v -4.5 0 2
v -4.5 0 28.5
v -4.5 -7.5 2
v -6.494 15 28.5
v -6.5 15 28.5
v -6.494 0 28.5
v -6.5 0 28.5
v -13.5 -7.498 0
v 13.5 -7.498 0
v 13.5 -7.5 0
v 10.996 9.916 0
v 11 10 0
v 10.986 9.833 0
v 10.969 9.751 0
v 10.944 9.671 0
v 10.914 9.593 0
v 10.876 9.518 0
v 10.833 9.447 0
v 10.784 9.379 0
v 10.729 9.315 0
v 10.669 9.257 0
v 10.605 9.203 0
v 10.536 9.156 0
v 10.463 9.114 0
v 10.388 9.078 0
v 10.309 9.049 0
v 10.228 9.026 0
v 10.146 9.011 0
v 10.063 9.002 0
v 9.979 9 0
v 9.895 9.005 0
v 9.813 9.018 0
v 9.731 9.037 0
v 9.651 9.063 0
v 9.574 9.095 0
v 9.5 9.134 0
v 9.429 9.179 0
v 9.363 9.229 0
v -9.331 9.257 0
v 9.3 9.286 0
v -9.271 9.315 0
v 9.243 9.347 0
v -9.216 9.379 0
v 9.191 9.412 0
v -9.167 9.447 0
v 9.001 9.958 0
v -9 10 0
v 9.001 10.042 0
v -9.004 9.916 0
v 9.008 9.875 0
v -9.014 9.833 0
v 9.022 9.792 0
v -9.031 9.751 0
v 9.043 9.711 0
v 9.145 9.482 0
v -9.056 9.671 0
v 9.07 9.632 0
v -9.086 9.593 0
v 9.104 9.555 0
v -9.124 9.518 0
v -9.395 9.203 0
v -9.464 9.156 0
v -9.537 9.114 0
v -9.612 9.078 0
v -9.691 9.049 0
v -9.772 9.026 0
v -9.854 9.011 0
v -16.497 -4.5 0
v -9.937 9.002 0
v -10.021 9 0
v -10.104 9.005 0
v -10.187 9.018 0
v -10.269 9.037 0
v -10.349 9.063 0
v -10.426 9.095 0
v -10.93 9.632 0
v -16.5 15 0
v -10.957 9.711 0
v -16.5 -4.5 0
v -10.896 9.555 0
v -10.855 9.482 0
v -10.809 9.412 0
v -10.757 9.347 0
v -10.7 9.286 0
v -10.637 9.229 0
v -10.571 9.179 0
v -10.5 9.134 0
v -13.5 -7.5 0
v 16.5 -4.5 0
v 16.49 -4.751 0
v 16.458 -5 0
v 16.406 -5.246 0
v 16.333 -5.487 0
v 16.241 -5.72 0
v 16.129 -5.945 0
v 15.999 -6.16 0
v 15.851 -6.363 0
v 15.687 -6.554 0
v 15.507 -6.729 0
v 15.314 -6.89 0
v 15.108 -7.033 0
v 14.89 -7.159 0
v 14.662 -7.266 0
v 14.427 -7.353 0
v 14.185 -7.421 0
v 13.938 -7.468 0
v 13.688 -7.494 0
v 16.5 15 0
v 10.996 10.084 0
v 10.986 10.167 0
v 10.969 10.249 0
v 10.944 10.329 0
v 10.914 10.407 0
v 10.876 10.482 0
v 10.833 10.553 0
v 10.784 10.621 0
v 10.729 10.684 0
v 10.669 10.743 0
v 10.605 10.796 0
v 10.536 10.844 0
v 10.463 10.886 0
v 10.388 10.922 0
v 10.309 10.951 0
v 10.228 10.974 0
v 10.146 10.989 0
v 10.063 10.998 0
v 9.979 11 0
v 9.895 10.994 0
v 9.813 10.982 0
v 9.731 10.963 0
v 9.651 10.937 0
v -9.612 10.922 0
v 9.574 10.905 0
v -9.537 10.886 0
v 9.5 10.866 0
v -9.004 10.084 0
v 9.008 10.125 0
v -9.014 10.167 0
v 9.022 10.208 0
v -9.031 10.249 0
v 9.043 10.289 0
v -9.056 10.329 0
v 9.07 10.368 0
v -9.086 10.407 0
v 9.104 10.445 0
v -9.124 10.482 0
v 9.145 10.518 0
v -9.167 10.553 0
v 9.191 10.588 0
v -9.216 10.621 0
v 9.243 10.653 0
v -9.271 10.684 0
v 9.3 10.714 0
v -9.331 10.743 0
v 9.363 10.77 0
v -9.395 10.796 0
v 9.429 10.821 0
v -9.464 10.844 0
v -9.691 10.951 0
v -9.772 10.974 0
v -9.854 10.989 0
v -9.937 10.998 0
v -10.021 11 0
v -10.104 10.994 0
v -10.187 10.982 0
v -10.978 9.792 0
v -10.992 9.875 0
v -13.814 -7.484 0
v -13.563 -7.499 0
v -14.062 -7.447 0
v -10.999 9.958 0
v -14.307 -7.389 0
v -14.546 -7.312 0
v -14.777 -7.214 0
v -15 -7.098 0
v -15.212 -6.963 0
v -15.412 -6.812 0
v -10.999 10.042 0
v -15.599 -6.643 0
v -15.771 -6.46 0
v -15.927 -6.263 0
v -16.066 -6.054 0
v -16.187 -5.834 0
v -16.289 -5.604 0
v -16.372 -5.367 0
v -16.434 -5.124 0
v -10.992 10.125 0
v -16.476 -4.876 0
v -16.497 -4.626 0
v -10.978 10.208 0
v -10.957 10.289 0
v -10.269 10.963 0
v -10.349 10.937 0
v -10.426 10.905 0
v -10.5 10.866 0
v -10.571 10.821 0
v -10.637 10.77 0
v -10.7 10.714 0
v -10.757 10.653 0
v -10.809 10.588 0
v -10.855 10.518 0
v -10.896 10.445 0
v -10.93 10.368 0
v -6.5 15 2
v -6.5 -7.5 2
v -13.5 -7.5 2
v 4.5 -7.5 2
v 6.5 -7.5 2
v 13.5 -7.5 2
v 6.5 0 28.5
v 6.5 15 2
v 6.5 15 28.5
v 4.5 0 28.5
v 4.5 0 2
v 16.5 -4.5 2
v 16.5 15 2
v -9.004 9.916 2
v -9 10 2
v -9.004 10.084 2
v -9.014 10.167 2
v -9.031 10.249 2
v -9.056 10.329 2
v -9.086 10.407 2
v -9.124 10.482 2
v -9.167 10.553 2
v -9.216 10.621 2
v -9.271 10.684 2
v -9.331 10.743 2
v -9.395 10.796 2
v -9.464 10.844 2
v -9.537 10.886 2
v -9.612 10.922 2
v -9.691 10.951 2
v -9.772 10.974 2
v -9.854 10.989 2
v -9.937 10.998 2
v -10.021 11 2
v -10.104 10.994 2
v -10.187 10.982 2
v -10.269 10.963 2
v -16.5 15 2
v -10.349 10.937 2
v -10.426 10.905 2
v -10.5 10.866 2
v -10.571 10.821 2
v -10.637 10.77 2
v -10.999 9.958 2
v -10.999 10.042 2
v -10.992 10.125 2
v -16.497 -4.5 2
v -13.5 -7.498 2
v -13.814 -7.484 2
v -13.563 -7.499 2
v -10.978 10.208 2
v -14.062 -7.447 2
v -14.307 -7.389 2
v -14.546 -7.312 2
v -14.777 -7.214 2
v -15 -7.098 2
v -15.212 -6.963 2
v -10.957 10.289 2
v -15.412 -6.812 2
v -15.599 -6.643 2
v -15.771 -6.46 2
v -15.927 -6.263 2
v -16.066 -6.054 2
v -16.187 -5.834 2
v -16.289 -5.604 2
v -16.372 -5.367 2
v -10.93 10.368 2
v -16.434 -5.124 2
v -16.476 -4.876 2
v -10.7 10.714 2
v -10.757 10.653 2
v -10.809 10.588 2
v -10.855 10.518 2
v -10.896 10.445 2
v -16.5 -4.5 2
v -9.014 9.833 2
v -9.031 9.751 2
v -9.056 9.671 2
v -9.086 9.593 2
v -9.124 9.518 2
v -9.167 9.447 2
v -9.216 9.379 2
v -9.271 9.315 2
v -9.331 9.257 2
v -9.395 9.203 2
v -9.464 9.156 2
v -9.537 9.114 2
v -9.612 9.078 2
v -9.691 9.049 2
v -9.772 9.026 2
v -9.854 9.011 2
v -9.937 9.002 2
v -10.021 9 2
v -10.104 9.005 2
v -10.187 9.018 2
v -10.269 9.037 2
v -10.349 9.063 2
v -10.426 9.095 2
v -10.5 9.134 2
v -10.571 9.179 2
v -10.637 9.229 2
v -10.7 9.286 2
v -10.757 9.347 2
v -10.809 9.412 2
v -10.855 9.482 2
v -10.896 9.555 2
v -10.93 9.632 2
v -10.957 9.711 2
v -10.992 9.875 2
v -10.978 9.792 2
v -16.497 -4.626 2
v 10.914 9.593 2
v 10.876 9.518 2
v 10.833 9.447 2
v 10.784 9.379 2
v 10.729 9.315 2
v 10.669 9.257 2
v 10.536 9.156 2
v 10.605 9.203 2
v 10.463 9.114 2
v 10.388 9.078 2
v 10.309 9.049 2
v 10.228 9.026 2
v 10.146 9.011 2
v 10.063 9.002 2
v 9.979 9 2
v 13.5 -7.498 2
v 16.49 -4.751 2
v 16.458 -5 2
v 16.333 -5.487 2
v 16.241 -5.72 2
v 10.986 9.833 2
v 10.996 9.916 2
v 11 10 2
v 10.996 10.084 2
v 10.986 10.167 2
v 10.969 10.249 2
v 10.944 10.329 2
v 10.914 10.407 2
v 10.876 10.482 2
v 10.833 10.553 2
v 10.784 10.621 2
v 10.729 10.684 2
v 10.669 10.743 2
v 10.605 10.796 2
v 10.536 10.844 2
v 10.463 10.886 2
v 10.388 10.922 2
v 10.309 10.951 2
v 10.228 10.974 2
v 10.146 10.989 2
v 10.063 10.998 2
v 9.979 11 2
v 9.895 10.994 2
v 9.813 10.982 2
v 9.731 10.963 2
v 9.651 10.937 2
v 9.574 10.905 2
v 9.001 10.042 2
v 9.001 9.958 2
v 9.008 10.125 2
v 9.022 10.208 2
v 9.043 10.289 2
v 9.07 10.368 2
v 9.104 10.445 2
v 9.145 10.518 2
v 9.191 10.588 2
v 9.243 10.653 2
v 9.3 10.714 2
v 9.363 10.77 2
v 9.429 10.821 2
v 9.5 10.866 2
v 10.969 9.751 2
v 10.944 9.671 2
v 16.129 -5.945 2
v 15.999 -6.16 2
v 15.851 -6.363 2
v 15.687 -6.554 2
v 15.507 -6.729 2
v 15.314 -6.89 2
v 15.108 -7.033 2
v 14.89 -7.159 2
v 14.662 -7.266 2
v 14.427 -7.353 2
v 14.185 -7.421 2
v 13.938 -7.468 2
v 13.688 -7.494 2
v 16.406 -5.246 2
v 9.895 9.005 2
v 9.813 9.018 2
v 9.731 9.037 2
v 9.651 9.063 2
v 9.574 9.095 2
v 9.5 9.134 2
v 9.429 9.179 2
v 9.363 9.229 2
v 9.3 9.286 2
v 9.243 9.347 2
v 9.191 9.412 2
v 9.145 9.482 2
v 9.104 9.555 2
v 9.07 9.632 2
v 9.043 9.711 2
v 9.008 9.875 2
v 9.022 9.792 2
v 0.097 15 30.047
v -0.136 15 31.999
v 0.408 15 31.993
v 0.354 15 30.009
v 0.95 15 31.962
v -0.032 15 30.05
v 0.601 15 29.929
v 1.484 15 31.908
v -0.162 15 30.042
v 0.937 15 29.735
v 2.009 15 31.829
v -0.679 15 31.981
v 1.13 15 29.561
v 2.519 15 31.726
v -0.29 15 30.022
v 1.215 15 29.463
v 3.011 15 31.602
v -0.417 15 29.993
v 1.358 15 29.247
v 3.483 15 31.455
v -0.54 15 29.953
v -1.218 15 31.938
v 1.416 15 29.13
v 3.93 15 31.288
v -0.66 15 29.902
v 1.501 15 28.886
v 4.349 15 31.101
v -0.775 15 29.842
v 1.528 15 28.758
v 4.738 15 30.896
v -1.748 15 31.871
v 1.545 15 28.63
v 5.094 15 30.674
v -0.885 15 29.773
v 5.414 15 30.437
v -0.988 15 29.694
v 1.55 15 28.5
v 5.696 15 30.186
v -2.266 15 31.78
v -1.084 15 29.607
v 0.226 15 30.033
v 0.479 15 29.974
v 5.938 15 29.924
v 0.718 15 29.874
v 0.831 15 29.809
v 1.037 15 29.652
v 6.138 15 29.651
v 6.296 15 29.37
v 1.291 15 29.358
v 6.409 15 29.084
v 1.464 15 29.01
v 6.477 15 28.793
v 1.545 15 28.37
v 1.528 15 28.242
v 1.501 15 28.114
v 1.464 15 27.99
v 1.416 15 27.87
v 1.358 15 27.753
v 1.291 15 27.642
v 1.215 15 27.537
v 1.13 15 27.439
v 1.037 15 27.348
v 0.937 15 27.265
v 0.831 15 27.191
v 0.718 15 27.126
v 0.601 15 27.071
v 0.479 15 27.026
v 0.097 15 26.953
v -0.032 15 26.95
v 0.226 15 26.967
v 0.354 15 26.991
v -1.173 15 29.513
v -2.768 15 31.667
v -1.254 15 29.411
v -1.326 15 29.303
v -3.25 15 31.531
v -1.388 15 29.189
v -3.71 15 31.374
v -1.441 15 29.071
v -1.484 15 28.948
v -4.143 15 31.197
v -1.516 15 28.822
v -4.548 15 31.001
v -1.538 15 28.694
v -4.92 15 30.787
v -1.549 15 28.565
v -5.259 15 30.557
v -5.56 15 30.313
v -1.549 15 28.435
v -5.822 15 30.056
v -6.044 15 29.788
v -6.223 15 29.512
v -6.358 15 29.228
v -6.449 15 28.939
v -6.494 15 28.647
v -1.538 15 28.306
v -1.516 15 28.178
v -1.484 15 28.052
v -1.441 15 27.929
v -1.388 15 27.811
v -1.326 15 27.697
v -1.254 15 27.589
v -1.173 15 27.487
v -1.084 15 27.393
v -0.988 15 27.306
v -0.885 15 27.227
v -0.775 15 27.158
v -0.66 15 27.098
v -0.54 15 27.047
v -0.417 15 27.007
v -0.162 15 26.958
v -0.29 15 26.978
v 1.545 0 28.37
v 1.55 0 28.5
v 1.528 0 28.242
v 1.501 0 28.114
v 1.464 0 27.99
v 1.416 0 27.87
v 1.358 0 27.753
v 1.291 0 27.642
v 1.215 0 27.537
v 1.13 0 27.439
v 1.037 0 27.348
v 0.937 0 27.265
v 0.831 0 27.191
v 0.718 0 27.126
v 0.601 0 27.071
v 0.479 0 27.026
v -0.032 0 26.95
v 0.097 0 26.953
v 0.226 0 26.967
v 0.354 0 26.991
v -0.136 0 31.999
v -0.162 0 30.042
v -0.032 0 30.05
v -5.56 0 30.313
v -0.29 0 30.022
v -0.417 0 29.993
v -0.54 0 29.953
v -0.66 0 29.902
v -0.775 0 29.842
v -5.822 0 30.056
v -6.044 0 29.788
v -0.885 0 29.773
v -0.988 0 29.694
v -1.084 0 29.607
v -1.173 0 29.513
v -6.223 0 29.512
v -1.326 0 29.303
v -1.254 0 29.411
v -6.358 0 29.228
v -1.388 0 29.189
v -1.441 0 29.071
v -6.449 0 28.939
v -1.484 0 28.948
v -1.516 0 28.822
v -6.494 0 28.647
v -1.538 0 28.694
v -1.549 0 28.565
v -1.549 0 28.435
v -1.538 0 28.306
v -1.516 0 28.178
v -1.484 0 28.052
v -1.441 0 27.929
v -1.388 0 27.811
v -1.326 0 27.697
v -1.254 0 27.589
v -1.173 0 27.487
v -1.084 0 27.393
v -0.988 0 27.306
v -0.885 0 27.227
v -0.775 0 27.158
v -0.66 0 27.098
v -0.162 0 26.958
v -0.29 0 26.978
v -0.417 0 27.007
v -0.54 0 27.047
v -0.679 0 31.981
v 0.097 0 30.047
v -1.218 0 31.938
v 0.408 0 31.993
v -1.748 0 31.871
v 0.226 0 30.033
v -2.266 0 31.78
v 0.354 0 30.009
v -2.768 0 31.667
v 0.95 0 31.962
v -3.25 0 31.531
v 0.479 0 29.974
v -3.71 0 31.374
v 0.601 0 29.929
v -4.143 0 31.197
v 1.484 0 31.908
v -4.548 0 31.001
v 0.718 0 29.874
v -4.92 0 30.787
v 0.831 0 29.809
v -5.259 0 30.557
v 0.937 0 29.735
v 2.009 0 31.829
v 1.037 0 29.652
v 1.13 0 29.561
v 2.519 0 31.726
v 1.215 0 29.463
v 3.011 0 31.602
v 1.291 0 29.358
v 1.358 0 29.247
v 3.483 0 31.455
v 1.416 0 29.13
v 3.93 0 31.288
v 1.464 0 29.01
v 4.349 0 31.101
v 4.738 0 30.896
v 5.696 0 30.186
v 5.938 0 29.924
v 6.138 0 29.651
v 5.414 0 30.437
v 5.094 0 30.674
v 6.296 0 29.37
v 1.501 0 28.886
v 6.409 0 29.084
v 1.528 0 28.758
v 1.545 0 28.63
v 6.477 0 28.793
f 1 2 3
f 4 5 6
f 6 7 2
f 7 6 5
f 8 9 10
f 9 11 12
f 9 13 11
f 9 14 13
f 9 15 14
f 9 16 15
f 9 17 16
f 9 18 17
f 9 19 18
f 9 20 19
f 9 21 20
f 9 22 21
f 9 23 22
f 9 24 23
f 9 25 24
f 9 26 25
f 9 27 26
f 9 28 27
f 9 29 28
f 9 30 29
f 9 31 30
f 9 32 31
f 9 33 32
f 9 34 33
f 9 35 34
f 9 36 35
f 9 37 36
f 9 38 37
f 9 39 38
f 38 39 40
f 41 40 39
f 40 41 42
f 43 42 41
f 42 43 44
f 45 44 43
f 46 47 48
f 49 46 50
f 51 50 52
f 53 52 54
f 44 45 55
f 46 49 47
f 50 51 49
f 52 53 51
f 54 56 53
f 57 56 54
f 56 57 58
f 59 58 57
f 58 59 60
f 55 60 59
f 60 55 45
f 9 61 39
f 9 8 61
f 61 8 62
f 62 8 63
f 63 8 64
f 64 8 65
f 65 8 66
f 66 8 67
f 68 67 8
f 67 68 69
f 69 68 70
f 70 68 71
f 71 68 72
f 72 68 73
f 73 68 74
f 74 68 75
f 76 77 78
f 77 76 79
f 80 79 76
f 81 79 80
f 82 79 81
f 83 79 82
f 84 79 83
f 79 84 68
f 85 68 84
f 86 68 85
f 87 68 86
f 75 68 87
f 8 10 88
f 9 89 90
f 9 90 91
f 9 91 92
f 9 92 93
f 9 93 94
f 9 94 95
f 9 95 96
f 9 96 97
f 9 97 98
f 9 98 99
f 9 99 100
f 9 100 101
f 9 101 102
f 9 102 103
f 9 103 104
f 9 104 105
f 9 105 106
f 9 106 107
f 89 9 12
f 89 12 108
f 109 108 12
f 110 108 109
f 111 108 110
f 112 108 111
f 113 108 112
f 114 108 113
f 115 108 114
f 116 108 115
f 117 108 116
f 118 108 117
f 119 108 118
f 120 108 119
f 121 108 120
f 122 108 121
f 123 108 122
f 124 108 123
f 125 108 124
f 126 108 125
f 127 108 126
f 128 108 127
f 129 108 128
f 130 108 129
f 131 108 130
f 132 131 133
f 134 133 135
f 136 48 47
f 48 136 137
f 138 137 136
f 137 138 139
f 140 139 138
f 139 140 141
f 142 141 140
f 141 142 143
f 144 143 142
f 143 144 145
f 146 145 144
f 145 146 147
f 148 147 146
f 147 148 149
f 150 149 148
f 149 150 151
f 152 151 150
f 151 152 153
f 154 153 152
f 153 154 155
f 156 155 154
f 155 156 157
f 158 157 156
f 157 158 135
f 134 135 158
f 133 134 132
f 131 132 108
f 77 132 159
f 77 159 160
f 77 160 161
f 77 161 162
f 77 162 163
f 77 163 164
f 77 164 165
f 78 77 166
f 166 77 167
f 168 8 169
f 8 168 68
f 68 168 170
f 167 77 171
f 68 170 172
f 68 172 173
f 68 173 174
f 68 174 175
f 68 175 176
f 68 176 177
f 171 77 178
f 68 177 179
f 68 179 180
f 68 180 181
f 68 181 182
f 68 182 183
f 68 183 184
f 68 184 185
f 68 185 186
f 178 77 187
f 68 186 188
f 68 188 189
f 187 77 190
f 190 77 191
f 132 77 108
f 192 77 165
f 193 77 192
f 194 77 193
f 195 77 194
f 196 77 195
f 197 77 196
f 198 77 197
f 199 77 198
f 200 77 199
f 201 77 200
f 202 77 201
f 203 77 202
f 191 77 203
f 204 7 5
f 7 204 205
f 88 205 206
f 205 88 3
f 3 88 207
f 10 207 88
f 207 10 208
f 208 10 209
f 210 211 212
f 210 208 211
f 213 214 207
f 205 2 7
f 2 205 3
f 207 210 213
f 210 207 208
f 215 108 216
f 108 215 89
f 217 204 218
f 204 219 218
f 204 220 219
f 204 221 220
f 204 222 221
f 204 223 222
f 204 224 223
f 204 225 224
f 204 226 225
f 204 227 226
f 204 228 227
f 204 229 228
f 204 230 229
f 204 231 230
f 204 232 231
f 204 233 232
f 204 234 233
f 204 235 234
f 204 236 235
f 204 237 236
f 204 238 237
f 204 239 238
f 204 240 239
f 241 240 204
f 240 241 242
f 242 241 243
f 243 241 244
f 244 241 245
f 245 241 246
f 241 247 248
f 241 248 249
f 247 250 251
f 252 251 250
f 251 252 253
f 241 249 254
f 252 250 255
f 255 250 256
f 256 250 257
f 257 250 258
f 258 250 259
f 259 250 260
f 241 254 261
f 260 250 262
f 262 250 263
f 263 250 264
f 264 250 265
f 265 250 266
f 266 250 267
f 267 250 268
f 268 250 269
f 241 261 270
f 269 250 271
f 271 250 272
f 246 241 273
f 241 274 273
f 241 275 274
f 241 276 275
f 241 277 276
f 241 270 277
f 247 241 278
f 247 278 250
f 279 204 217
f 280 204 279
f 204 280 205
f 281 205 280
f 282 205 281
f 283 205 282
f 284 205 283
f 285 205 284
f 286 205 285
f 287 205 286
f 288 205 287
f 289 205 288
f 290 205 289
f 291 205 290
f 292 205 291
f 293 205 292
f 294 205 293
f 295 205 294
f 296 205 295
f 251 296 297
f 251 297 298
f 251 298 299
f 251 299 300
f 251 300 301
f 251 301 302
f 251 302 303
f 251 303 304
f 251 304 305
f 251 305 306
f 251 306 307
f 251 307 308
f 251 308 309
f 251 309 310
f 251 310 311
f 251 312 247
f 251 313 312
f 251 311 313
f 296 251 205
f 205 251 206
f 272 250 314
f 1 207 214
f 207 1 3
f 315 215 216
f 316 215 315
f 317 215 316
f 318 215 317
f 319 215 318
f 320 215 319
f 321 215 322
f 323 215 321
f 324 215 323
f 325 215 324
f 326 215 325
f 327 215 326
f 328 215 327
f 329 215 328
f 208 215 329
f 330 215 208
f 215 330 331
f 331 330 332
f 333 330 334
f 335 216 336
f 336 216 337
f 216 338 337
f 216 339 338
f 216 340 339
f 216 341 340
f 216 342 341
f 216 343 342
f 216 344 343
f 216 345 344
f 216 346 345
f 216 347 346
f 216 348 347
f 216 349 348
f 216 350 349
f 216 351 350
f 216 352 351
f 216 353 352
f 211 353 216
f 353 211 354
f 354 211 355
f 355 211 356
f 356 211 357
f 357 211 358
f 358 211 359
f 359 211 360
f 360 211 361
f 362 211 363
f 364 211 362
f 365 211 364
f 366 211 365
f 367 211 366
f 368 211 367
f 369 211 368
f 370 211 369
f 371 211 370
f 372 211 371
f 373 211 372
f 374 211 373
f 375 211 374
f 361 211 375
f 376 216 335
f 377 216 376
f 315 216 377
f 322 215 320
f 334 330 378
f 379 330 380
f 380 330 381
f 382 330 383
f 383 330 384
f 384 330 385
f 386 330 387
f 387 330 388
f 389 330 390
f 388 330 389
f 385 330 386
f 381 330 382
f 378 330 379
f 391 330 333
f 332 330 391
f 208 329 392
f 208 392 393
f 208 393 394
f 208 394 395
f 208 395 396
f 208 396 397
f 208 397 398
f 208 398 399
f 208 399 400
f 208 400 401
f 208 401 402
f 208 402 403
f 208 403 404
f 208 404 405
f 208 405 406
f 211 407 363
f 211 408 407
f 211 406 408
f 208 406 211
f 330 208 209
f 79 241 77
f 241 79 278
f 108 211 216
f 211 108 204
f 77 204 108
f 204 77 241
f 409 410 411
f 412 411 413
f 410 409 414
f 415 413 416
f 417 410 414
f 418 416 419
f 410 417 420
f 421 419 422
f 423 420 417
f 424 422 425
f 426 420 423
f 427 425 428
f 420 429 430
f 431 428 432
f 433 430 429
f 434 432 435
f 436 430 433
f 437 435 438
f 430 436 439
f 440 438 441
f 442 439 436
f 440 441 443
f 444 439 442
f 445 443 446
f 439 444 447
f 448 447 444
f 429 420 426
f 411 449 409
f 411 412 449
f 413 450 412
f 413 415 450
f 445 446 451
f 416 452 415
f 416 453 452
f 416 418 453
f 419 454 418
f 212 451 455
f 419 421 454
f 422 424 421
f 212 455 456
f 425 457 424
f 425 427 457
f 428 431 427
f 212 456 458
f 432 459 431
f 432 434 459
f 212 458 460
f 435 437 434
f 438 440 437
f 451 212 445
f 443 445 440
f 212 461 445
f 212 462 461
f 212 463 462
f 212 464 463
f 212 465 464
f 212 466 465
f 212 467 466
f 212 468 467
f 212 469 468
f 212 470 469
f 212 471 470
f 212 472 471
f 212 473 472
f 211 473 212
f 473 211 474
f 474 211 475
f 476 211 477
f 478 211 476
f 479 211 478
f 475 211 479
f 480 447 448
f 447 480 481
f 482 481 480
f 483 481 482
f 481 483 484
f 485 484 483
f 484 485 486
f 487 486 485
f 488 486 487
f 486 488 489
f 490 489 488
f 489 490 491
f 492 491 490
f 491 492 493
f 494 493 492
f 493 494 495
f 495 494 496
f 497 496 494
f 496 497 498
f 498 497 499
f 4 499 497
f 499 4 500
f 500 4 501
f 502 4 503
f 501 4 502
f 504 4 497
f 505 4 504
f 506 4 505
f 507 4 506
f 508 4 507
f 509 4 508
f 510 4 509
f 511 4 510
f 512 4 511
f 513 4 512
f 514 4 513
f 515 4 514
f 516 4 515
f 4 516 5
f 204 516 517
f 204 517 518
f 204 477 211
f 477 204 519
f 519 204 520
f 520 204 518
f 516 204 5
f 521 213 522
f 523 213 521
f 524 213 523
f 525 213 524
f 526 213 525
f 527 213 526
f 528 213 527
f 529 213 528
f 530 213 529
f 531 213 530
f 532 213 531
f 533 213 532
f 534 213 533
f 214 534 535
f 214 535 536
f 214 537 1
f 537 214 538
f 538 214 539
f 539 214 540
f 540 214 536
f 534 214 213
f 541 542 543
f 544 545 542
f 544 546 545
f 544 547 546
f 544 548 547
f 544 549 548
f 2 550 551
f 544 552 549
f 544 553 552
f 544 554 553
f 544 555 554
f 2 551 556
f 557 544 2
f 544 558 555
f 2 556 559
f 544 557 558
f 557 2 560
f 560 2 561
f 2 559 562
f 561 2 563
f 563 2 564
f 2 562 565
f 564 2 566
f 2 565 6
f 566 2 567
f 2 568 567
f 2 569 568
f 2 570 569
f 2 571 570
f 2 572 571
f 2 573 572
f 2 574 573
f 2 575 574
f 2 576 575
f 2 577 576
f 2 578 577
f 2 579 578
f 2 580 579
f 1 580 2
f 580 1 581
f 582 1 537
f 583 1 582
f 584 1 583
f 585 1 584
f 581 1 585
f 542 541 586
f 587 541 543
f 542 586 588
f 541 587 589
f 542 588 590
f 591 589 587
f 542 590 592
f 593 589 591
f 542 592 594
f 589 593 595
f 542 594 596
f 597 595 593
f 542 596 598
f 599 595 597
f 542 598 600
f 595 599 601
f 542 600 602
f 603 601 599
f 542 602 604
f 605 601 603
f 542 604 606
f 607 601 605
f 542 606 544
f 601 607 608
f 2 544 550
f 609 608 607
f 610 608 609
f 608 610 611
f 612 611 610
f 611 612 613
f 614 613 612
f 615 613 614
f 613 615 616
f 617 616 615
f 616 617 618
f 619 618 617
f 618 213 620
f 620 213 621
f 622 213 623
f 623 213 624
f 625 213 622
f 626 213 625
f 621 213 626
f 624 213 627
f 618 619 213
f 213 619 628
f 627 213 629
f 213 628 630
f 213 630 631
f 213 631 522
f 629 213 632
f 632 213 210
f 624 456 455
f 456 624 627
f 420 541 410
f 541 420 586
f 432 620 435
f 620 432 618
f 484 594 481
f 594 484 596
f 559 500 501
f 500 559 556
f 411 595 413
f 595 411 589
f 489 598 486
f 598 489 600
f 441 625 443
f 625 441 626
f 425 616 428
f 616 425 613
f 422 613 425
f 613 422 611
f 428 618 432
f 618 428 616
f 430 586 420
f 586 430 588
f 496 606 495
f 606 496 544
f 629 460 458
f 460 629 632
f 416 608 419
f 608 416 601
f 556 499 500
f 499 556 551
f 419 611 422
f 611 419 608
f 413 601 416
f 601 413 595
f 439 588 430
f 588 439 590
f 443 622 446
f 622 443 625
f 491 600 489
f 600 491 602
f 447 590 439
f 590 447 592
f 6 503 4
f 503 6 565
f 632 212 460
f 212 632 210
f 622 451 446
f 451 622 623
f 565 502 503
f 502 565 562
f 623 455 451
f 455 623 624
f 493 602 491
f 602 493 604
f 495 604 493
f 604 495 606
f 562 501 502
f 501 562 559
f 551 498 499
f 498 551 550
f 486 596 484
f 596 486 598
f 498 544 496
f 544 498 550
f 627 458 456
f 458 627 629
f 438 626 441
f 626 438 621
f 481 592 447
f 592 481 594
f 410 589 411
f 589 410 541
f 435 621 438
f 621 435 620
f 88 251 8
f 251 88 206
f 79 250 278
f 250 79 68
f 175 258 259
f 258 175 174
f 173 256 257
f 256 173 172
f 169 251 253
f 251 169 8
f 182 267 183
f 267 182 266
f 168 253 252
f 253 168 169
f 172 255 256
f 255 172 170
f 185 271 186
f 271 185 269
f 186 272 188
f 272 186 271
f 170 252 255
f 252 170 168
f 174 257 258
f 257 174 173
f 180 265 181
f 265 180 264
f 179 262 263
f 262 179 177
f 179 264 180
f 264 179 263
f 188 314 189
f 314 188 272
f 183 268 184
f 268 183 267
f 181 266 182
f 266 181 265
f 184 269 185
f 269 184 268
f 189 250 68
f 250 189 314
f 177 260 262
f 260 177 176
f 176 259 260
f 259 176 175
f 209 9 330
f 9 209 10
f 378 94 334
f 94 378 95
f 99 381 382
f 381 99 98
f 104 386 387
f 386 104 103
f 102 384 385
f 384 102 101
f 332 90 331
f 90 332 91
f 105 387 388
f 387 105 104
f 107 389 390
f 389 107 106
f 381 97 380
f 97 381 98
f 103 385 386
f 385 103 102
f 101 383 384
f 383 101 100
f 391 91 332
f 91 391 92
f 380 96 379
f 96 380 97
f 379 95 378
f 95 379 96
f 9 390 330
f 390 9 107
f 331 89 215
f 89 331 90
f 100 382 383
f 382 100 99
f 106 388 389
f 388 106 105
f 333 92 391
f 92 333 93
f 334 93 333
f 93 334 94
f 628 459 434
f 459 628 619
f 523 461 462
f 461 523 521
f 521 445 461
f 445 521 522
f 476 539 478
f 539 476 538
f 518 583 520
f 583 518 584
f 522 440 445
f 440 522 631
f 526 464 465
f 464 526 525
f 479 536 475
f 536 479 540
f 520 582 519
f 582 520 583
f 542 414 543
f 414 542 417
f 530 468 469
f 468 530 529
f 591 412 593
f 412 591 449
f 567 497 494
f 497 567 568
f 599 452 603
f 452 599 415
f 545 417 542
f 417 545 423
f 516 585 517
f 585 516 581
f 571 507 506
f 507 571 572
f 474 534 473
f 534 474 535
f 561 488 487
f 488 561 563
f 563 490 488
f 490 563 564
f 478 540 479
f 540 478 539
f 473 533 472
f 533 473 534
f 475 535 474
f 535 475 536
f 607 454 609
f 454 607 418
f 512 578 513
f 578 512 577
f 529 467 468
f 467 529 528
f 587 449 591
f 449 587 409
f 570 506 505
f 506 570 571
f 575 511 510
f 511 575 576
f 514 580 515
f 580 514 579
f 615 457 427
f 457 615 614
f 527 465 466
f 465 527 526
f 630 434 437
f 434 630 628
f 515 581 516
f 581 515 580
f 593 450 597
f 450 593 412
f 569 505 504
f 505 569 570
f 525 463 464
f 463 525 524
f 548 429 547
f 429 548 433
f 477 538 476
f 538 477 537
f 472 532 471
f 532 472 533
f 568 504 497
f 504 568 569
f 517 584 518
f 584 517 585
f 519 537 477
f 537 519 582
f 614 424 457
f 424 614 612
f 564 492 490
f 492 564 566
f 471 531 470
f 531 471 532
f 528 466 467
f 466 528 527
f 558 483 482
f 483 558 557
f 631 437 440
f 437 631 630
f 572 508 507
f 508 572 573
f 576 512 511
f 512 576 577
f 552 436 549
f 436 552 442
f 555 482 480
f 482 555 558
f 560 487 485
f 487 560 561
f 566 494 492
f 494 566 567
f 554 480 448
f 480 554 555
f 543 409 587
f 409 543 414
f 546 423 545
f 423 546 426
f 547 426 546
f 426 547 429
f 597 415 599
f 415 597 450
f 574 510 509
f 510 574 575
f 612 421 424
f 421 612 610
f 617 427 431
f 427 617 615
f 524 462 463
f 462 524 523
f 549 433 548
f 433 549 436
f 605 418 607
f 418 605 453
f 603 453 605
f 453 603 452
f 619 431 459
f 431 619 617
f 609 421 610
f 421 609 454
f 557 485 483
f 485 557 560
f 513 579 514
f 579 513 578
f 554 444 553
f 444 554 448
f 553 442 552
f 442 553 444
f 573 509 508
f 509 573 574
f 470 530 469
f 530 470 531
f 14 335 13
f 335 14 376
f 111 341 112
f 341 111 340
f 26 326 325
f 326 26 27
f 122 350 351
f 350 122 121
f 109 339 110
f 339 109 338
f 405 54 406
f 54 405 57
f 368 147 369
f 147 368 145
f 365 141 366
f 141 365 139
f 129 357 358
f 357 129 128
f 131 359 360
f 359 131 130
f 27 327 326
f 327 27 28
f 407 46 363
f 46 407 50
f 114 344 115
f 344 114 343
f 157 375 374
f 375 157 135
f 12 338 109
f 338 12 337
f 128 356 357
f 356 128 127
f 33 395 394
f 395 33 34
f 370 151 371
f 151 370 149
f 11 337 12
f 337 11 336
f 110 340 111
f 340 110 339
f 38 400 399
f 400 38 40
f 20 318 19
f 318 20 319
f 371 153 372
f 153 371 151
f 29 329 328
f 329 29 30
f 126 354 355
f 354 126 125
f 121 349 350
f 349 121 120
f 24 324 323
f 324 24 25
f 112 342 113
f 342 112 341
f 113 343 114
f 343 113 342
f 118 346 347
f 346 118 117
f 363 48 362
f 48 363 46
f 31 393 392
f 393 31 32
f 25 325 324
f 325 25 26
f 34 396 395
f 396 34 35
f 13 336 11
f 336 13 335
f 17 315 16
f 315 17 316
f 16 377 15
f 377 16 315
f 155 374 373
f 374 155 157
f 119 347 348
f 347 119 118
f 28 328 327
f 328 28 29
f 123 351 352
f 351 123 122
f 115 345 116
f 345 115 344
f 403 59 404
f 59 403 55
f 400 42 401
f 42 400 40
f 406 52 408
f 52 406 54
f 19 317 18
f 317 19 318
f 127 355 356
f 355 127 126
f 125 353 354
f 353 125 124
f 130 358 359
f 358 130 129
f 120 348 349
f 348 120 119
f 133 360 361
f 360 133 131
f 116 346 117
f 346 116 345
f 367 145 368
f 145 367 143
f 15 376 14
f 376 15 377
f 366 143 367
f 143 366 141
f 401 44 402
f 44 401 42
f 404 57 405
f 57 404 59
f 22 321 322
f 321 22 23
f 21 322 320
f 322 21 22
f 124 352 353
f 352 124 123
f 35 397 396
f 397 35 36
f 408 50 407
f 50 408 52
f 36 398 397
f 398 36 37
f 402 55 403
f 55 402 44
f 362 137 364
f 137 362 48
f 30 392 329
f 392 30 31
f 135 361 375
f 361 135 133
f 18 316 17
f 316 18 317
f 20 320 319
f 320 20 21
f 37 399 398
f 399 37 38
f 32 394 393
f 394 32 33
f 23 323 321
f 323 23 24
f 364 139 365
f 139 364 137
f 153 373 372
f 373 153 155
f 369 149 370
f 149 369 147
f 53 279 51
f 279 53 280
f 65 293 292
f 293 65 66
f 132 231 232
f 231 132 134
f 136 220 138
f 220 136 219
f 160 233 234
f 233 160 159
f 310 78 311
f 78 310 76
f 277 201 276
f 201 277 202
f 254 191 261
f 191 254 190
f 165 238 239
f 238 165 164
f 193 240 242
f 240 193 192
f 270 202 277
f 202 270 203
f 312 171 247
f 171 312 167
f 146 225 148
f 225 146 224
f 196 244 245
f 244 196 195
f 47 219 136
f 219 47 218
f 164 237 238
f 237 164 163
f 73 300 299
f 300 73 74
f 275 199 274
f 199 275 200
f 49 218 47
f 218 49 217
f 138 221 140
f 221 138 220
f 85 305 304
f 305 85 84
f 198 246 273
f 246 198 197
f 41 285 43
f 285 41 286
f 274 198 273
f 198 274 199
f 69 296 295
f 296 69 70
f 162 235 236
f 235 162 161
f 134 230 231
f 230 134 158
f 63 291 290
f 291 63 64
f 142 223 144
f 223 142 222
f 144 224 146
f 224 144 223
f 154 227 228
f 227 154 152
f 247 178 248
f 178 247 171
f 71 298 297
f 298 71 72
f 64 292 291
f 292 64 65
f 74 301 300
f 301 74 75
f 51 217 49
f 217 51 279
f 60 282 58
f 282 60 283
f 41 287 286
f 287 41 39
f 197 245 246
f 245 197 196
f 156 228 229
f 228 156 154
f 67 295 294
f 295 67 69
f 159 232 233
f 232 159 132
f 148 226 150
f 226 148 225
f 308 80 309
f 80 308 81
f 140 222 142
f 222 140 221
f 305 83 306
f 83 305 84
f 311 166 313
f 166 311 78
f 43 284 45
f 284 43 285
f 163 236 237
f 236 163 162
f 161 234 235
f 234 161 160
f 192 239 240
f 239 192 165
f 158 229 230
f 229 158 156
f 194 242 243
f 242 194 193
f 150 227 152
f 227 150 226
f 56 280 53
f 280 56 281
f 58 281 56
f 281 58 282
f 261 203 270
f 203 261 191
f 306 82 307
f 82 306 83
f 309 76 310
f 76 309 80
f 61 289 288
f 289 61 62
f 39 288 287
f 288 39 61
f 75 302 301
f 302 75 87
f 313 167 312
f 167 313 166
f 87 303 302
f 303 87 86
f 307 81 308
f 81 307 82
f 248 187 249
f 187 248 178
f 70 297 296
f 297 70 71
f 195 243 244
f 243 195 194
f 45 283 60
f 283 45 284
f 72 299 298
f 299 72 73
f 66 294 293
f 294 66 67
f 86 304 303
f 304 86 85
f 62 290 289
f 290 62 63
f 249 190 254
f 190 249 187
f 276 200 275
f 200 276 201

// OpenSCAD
include <commun.scad>

difference() {
  union() {
    receiver();
/*    translate([receiver_distance, 0, 0]) receiver();
    translate([receiver_width / 2 - 1, receiver_length - receiver_base_length, 0]) cube([receiver_distance - receiver_width + 2, receiver_base_length, support_height]);*/
  }
}
